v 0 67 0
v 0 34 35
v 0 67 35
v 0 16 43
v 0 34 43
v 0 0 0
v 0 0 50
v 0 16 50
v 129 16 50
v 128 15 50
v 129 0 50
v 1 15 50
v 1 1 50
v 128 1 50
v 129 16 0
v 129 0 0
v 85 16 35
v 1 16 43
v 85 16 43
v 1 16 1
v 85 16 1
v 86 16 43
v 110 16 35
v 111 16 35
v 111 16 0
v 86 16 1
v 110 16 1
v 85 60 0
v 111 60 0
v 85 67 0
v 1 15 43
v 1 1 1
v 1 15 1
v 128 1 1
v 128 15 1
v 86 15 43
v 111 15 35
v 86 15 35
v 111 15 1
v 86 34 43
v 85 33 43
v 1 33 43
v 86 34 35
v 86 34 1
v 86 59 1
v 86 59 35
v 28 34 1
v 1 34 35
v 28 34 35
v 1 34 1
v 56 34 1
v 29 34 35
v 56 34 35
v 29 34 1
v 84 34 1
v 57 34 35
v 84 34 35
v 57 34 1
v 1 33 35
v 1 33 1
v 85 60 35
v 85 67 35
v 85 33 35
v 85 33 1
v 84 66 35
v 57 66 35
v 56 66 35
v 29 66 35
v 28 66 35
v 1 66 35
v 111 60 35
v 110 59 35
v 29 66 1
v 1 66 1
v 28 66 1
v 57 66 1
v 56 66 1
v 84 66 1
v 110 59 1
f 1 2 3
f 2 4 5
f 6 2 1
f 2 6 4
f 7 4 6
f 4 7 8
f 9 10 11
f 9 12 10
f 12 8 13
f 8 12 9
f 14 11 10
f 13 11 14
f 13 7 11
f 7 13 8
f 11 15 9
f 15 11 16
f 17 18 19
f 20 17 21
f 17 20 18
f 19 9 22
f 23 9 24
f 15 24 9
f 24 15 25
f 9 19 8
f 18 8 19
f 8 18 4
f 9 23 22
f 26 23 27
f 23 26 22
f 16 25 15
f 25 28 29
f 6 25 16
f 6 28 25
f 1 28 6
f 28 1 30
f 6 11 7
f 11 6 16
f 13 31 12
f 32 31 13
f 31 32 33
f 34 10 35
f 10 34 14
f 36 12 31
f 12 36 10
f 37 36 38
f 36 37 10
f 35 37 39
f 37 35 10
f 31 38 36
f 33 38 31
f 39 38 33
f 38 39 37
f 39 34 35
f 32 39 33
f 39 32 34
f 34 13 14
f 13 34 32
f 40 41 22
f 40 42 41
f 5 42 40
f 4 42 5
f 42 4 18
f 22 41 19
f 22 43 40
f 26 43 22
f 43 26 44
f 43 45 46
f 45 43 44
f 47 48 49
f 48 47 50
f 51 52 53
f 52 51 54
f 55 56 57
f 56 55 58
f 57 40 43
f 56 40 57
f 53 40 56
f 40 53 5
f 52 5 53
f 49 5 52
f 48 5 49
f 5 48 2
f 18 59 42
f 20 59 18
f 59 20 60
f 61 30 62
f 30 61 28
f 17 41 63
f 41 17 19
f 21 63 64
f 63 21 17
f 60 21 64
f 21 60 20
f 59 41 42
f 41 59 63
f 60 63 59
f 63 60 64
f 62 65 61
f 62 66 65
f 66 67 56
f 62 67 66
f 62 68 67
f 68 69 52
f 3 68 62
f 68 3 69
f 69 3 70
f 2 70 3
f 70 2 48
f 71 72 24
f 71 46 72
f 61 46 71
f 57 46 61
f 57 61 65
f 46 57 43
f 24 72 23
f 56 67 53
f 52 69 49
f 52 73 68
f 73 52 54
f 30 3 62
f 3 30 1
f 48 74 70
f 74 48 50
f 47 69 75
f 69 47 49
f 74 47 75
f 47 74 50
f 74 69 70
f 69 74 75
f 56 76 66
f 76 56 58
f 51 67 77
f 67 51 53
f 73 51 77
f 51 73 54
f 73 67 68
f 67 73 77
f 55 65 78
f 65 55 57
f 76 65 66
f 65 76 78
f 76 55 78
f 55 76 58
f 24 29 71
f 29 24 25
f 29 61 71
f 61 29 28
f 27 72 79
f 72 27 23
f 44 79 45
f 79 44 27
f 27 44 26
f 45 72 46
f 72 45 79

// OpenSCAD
$fn=200;

THICK = 1;

// CARD_L = 91;
// CARD_W = 59;
// CARD_STACK = 36;

// BOX_W = CARD_W + (THICK * 2);
// BOX_L = CARD_L + (THICK * 2);
// BOX_H = CARD_STACK + (THICK * 2);



card_box(
    [0, 0, 0], 
    [127, 14, 50]);

card_box(
    [0, 15, 0], 
    [84, 17, 43]);

card_box(
    [0, 33, 0], 
    [27, 32, 35]);

card_box(
    [28, 33, 0], 
    [27, 32, 35]);

card_box(
    [56, 33, 0], 
    [27, 32, 35]);

card_box(
    [85, 15, 0], 
    [24, 43, 35]);


module card_box(position, box) {


    difference() {
        translate(position) {
            cube(size = [
                box.x + (THICK * 2),
                box.y + (THICK * 2), 
                box.z]);
        }

        translate([
            position.x + THICK,
            position.y + THICK,
            position.z + THICK]) {
            cube(size = box);
        }

        // translate([
        //     -10,
        //     BOX_L / 2,
        //     BOX_H]) {

        //     rotate([0, 90, 0]) {
        //         cylinder(
        //             h = 100,
        //             r = 20);
        //     }
        // }
    }
}
